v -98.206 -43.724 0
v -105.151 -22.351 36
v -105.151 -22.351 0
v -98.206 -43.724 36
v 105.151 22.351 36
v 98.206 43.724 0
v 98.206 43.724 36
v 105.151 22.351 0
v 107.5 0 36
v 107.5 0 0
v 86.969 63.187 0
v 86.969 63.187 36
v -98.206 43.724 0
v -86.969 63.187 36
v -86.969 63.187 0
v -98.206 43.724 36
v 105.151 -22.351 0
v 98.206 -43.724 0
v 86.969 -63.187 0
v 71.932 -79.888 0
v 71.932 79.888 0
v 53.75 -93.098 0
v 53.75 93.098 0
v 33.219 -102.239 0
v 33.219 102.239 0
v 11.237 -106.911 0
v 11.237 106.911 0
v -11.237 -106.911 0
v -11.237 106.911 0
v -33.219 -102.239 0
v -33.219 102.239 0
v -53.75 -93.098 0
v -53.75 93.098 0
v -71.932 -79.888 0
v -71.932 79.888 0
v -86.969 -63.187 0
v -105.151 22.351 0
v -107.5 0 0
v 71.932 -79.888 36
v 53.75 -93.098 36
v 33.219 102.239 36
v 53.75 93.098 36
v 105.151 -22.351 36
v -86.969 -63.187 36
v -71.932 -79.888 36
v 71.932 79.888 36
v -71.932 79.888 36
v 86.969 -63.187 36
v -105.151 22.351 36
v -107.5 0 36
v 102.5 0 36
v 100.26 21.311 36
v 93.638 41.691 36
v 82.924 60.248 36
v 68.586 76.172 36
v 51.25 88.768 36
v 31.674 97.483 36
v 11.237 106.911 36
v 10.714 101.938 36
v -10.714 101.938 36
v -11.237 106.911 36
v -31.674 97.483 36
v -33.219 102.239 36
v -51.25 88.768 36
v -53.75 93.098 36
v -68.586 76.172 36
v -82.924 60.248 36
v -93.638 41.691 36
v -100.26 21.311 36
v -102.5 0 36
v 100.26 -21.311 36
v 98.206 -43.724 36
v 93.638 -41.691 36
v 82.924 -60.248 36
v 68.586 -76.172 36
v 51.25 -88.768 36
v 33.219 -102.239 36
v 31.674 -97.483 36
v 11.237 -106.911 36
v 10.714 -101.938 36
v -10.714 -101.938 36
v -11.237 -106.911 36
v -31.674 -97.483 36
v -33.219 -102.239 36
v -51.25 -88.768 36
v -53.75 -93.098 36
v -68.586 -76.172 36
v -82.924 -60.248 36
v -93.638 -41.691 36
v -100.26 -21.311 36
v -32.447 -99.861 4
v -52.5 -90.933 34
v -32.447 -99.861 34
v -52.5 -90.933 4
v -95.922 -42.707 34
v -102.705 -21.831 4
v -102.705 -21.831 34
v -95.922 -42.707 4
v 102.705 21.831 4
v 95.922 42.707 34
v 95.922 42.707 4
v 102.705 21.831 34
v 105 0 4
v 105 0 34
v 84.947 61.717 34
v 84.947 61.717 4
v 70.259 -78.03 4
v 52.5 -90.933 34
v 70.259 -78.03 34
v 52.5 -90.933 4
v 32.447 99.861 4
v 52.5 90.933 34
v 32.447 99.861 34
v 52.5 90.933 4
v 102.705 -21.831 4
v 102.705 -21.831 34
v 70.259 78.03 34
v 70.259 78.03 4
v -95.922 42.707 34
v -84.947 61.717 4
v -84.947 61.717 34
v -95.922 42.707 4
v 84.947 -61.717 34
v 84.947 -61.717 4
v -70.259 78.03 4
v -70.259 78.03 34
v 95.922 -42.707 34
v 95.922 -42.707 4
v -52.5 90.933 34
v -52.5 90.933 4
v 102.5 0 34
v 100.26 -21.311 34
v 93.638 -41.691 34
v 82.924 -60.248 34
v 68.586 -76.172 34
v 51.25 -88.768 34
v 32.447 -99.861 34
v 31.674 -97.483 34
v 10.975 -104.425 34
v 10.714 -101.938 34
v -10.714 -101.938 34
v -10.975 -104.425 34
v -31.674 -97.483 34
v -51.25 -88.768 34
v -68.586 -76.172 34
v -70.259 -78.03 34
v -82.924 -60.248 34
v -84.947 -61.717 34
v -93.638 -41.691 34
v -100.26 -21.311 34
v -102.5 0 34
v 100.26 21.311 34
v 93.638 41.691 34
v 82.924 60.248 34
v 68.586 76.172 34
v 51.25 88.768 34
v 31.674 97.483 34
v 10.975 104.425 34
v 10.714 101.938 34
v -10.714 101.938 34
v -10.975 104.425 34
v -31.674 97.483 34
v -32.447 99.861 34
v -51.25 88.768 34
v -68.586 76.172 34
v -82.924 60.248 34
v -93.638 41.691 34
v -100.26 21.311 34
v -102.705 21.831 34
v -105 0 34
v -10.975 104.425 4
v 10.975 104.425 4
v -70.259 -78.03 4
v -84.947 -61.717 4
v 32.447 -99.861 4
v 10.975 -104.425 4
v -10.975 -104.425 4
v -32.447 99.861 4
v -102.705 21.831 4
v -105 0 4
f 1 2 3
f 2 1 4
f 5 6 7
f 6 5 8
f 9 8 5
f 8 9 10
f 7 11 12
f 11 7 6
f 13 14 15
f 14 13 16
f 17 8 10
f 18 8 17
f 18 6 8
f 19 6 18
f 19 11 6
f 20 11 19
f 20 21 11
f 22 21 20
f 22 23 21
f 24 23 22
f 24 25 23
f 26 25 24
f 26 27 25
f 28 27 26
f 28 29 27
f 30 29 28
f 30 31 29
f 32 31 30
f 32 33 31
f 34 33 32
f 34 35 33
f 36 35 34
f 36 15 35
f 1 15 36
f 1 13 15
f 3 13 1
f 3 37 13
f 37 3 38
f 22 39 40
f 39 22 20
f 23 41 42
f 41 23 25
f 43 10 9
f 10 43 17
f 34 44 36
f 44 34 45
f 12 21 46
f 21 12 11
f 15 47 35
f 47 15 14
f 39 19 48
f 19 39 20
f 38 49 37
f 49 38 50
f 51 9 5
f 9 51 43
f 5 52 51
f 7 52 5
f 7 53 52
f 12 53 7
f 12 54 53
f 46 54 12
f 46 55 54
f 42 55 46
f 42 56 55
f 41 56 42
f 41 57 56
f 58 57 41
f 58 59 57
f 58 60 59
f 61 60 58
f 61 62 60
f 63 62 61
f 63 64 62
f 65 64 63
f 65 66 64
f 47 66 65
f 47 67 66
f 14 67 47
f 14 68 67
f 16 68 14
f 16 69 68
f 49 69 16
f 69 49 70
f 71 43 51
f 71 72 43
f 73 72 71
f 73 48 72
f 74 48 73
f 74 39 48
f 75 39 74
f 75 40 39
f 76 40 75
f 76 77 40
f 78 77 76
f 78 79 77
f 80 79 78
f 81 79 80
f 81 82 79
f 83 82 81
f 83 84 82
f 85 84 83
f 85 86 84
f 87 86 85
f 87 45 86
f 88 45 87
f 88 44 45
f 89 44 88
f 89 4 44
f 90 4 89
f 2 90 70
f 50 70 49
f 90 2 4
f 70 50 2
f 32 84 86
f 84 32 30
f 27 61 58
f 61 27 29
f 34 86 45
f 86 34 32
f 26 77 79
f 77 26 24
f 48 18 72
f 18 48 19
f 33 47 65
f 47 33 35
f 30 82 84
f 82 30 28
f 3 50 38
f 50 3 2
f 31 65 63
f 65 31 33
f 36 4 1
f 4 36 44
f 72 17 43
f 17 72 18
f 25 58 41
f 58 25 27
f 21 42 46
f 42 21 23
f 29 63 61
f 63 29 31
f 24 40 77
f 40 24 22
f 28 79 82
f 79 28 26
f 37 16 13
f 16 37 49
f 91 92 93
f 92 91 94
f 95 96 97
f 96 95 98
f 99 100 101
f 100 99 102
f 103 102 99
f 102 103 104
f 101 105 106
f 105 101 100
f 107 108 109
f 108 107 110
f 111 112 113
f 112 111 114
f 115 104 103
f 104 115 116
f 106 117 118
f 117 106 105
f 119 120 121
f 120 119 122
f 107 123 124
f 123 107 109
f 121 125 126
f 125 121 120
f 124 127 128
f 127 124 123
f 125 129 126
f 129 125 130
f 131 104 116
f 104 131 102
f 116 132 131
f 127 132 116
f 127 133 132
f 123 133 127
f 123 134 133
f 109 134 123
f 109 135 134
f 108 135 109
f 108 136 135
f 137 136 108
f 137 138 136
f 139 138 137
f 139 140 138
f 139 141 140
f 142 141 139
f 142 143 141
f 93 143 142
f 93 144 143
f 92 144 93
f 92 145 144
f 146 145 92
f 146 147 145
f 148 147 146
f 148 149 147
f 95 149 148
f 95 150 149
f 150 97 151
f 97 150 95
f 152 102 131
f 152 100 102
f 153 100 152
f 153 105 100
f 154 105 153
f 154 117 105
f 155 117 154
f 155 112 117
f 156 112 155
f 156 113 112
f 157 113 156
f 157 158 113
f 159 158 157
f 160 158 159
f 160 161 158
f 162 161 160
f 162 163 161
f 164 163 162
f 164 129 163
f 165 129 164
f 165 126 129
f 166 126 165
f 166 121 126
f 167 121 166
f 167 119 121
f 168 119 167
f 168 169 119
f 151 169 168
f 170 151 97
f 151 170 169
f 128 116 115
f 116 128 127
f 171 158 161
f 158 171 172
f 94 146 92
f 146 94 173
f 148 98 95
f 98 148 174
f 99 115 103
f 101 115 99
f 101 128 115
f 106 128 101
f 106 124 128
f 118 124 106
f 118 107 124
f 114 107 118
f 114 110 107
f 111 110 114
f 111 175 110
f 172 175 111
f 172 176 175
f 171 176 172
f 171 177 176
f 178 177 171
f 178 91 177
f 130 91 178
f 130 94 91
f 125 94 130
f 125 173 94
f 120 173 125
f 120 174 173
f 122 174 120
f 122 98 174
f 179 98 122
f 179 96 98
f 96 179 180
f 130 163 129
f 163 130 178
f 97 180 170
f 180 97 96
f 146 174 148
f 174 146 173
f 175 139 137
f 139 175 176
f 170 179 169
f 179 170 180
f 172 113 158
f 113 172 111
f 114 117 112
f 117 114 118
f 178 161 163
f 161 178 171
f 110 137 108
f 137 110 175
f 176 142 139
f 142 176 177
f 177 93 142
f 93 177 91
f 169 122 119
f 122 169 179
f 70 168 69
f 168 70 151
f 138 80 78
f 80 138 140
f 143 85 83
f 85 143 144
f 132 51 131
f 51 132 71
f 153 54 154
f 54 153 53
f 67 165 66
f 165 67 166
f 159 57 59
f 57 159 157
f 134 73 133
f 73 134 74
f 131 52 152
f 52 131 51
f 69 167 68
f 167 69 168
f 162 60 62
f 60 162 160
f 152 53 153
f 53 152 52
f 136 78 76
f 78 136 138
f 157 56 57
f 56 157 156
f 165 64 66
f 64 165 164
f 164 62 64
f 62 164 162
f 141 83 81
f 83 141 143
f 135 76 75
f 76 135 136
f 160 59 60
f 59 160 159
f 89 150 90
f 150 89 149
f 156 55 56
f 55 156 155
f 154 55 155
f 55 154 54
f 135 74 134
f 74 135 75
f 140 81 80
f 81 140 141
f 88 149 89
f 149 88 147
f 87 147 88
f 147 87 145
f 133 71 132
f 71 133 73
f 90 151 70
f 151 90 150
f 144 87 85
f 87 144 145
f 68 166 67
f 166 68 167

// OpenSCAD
difference() {
    cylinder(h = 36, d = 215);
    translate([0, 0, 4]) {
    cylinder(h = 30, d = 210);
    };
    translate([0, 0, 4]) {
        cylinder(h = 34, d = 205);
    };
};

/* Holds strips of cardboard cut to 3cm in width. */
